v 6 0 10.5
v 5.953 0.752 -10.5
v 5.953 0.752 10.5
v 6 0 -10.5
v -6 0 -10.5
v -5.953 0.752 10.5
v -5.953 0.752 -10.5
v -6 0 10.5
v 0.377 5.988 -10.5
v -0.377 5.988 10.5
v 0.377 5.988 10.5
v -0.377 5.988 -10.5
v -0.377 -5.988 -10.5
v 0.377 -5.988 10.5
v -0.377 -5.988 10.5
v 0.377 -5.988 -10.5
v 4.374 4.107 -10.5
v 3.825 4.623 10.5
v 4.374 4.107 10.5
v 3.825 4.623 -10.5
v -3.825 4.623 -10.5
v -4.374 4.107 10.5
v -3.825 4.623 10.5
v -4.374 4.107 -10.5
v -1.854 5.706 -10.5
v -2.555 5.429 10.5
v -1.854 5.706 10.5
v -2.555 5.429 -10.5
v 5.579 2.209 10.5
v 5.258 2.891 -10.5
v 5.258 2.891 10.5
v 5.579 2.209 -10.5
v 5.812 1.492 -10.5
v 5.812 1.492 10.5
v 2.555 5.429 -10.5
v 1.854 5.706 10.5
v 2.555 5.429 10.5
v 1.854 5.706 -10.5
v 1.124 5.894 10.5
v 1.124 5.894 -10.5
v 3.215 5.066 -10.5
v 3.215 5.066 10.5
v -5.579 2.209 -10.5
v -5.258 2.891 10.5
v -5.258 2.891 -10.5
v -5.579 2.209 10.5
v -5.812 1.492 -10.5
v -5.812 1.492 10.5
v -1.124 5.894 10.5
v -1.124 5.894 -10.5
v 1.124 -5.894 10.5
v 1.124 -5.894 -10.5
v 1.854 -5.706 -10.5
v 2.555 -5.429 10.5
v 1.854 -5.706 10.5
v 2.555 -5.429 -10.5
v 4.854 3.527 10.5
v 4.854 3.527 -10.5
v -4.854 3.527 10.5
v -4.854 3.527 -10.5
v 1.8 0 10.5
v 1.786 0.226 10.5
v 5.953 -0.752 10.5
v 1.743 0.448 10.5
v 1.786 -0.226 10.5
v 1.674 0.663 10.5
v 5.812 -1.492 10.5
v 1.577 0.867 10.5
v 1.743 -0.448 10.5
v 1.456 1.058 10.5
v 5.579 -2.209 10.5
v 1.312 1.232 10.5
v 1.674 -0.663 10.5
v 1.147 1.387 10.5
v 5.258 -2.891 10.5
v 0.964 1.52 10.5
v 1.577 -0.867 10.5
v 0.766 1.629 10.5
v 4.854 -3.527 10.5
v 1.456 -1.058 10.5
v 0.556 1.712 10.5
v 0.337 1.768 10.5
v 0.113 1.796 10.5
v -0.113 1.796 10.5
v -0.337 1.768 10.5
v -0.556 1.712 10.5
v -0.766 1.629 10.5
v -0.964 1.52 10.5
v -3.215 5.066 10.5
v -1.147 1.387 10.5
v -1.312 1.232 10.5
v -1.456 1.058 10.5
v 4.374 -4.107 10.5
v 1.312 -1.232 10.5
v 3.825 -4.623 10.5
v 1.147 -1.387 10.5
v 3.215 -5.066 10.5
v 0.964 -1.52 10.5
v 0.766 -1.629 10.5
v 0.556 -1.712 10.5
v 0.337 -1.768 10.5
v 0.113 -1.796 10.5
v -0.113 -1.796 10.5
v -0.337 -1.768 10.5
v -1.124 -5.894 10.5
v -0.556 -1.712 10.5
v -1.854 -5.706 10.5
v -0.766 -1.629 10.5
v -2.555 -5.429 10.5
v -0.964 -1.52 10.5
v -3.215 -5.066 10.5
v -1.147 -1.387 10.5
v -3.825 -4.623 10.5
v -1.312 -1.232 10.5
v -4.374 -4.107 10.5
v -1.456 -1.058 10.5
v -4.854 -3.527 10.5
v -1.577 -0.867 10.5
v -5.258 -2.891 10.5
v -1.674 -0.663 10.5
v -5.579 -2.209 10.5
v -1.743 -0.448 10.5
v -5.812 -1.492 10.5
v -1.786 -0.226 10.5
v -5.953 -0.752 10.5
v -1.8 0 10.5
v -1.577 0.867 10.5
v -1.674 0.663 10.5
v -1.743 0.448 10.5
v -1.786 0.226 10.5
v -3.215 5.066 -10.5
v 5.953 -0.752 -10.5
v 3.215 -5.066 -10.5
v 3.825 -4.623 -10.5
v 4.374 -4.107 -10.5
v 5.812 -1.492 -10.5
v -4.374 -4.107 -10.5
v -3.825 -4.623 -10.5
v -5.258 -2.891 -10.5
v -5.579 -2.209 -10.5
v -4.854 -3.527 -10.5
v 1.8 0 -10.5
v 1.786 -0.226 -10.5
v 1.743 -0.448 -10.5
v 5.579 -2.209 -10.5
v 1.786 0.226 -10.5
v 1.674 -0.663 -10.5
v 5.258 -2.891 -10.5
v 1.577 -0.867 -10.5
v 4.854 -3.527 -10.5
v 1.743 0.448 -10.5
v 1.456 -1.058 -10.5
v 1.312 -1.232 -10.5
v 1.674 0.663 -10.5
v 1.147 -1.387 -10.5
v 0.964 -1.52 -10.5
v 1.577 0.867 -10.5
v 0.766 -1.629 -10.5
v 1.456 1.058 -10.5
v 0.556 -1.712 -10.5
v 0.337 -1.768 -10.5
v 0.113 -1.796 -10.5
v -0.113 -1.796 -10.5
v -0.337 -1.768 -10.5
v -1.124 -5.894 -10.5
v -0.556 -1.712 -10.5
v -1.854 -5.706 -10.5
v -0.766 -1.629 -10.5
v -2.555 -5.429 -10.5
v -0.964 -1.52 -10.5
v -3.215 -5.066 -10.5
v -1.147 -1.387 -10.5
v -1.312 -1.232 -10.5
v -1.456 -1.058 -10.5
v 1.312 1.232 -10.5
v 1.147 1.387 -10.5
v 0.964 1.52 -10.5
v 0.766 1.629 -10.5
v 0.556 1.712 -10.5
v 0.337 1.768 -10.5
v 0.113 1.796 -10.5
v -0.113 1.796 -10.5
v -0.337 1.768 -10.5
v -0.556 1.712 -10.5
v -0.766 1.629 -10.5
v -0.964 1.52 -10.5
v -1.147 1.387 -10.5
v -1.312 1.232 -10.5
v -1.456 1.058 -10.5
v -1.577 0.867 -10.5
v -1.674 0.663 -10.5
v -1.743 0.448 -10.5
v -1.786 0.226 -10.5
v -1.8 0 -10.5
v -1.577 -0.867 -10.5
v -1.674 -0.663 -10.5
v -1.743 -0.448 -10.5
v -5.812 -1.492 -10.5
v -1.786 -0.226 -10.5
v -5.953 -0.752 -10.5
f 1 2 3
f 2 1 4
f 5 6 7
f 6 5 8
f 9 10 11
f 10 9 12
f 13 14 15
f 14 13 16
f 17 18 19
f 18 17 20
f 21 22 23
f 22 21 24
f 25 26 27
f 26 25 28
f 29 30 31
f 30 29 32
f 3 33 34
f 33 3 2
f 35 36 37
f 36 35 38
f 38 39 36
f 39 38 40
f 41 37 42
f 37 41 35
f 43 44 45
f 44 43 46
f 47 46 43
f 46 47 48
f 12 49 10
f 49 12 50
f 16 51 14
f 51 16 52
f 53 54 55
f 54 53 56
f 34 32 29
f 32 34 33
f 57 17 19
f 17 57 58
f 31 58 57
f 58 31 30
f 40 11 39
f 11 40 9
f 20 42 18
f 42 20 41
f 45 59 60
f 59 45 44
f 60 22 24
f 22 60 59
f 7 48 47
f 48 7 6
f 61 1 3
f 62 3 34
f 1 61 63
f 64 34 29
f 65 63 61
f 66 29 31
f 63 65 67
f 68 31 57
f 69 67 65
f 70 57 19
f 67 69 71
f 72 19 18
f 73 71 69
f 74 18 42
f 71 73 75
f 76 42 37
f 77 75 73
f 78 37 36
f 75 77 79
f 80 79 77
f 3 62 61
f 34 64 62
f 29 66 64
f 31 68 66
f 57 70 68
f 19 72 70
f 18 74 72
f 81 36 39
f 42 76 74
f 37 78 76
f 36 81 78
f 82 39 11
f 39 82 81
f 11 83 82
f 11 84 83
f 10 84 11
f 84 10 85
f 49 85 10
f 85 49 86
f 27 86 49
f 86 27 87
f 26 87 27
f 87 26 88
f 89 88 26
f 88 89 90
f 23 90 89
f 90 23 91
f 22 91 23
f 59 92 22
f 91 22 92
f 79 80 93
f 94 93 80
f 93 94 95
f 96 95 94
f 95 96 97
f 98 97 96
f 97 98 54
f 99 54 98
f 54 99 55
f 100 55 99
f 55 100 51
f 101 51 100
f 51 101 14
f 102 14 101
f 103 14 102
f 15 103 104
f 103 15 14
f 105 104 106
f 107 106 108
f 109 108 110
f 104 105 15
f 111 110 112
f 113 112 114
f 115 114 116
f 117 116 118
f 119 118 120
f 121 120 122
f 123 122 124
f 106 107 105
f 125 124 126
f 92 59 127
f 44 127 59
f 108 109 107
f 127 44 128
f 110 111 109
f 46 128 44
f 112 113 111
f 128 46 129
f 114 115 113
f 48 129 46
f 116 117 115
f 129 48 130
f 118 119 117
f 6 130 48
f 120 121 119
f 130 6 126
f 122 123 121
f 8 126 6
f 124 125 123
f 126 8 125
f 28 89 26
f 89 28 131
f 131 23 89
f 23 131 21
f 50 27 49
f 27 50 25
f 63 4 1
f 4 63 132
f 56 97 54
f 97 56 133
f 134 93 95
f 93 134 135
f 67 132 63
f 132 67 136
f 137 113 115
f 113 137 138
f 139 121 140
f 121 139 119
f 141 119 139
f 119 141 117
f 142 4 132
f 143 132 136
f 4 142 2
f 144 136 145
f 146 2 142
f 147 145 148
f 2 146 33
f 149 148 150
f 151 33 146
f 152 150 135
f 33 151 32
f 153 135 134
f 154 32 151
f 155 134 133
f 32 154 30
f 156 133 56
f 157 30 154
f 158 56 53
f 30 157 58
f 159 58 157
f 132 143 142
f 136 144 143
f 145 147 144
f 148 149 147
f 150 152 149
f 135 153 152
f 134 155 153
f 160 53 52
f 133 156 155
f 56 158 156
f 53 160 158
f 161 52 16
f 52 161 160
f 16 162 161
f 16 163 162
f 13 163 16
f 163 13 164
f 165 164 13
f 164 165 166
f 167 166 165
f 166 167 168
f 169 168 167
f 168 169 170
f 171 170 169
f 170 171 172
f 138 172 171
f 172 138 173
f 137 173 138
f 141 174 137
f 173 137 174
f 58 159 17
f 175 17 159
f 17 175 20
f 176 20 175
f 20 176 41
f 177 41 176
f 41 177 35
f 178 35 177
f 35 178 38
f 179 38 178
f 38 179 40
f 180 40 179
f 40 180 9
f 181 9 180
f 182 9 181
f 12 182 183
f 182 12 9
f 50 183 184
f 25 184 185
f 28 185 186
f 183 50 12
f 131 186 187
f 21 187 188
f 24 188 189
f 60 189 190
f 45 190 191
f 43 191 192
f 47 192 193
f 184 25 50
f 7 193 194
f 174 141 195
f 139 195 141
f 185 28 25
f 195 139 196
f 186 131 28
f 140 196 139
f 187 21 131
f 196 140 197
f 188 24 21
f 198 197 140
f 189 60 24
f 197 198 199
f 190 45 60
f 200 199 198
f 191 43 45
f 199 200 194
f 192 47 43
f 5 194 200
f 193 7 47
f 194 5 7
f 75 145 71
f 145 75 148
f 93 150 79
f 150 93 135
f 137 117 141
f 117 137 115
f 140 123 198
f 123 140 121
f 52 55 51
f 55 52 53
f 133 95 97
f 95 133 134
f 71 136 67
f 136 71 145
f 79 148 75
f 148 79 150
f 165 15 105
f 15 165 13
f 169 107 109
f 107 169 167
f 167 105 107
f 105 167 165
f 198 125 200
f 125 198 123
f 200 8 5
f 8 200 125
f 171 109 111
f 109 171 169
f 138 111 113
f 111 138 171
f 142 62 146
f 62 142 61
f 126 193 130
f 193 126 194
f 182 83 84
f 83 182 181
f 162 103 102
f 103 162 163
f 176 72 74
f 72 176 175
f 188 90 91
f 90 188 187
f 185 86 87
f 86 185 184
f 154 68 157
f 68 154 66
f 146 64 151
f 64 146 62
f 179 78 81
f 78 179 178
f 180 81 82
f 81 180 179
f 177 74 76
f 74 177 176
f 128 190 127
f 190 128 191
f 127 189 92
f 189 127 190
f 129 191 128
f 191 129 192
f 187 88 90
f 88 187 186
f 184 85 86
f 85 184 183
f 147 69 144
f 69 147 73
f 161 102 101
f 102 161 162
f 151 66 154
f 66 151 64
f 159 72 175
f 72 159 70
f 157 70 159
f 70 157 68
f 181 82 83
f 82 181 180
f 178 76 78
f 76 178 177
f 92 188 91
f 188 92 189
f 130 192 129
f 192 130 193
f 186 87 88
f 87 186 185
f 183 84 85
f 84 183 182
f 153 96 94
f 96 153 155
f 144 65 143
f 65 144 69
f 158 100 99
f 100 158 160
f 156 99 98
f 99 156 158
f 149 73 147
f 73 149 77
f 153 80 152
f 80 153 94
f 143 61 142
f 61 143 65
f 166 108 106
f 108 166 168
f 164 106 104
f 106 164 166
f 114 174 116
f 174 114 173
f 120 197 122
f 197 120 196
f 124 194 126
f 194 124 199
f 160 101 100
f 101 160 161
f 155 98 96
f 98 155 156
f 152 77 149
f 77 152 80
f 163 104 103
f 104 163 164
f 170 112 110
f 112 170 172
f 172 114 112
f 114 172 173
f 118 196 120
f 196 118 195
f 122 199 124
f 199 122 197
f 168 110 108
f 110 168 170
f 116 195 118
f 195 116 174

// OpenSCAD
$fn = 50;


difference() {
	union() {
		translate(v = [0, 0, -10.5000000000]) {
			cylinder(h = 21, r = 6.0000000000);
		}
	}
	union() {
		translate(v = [0, 0, -100.0000000000]) {
			cylinder(h = 200, r = 1.8000000000);
		}
	}
}
